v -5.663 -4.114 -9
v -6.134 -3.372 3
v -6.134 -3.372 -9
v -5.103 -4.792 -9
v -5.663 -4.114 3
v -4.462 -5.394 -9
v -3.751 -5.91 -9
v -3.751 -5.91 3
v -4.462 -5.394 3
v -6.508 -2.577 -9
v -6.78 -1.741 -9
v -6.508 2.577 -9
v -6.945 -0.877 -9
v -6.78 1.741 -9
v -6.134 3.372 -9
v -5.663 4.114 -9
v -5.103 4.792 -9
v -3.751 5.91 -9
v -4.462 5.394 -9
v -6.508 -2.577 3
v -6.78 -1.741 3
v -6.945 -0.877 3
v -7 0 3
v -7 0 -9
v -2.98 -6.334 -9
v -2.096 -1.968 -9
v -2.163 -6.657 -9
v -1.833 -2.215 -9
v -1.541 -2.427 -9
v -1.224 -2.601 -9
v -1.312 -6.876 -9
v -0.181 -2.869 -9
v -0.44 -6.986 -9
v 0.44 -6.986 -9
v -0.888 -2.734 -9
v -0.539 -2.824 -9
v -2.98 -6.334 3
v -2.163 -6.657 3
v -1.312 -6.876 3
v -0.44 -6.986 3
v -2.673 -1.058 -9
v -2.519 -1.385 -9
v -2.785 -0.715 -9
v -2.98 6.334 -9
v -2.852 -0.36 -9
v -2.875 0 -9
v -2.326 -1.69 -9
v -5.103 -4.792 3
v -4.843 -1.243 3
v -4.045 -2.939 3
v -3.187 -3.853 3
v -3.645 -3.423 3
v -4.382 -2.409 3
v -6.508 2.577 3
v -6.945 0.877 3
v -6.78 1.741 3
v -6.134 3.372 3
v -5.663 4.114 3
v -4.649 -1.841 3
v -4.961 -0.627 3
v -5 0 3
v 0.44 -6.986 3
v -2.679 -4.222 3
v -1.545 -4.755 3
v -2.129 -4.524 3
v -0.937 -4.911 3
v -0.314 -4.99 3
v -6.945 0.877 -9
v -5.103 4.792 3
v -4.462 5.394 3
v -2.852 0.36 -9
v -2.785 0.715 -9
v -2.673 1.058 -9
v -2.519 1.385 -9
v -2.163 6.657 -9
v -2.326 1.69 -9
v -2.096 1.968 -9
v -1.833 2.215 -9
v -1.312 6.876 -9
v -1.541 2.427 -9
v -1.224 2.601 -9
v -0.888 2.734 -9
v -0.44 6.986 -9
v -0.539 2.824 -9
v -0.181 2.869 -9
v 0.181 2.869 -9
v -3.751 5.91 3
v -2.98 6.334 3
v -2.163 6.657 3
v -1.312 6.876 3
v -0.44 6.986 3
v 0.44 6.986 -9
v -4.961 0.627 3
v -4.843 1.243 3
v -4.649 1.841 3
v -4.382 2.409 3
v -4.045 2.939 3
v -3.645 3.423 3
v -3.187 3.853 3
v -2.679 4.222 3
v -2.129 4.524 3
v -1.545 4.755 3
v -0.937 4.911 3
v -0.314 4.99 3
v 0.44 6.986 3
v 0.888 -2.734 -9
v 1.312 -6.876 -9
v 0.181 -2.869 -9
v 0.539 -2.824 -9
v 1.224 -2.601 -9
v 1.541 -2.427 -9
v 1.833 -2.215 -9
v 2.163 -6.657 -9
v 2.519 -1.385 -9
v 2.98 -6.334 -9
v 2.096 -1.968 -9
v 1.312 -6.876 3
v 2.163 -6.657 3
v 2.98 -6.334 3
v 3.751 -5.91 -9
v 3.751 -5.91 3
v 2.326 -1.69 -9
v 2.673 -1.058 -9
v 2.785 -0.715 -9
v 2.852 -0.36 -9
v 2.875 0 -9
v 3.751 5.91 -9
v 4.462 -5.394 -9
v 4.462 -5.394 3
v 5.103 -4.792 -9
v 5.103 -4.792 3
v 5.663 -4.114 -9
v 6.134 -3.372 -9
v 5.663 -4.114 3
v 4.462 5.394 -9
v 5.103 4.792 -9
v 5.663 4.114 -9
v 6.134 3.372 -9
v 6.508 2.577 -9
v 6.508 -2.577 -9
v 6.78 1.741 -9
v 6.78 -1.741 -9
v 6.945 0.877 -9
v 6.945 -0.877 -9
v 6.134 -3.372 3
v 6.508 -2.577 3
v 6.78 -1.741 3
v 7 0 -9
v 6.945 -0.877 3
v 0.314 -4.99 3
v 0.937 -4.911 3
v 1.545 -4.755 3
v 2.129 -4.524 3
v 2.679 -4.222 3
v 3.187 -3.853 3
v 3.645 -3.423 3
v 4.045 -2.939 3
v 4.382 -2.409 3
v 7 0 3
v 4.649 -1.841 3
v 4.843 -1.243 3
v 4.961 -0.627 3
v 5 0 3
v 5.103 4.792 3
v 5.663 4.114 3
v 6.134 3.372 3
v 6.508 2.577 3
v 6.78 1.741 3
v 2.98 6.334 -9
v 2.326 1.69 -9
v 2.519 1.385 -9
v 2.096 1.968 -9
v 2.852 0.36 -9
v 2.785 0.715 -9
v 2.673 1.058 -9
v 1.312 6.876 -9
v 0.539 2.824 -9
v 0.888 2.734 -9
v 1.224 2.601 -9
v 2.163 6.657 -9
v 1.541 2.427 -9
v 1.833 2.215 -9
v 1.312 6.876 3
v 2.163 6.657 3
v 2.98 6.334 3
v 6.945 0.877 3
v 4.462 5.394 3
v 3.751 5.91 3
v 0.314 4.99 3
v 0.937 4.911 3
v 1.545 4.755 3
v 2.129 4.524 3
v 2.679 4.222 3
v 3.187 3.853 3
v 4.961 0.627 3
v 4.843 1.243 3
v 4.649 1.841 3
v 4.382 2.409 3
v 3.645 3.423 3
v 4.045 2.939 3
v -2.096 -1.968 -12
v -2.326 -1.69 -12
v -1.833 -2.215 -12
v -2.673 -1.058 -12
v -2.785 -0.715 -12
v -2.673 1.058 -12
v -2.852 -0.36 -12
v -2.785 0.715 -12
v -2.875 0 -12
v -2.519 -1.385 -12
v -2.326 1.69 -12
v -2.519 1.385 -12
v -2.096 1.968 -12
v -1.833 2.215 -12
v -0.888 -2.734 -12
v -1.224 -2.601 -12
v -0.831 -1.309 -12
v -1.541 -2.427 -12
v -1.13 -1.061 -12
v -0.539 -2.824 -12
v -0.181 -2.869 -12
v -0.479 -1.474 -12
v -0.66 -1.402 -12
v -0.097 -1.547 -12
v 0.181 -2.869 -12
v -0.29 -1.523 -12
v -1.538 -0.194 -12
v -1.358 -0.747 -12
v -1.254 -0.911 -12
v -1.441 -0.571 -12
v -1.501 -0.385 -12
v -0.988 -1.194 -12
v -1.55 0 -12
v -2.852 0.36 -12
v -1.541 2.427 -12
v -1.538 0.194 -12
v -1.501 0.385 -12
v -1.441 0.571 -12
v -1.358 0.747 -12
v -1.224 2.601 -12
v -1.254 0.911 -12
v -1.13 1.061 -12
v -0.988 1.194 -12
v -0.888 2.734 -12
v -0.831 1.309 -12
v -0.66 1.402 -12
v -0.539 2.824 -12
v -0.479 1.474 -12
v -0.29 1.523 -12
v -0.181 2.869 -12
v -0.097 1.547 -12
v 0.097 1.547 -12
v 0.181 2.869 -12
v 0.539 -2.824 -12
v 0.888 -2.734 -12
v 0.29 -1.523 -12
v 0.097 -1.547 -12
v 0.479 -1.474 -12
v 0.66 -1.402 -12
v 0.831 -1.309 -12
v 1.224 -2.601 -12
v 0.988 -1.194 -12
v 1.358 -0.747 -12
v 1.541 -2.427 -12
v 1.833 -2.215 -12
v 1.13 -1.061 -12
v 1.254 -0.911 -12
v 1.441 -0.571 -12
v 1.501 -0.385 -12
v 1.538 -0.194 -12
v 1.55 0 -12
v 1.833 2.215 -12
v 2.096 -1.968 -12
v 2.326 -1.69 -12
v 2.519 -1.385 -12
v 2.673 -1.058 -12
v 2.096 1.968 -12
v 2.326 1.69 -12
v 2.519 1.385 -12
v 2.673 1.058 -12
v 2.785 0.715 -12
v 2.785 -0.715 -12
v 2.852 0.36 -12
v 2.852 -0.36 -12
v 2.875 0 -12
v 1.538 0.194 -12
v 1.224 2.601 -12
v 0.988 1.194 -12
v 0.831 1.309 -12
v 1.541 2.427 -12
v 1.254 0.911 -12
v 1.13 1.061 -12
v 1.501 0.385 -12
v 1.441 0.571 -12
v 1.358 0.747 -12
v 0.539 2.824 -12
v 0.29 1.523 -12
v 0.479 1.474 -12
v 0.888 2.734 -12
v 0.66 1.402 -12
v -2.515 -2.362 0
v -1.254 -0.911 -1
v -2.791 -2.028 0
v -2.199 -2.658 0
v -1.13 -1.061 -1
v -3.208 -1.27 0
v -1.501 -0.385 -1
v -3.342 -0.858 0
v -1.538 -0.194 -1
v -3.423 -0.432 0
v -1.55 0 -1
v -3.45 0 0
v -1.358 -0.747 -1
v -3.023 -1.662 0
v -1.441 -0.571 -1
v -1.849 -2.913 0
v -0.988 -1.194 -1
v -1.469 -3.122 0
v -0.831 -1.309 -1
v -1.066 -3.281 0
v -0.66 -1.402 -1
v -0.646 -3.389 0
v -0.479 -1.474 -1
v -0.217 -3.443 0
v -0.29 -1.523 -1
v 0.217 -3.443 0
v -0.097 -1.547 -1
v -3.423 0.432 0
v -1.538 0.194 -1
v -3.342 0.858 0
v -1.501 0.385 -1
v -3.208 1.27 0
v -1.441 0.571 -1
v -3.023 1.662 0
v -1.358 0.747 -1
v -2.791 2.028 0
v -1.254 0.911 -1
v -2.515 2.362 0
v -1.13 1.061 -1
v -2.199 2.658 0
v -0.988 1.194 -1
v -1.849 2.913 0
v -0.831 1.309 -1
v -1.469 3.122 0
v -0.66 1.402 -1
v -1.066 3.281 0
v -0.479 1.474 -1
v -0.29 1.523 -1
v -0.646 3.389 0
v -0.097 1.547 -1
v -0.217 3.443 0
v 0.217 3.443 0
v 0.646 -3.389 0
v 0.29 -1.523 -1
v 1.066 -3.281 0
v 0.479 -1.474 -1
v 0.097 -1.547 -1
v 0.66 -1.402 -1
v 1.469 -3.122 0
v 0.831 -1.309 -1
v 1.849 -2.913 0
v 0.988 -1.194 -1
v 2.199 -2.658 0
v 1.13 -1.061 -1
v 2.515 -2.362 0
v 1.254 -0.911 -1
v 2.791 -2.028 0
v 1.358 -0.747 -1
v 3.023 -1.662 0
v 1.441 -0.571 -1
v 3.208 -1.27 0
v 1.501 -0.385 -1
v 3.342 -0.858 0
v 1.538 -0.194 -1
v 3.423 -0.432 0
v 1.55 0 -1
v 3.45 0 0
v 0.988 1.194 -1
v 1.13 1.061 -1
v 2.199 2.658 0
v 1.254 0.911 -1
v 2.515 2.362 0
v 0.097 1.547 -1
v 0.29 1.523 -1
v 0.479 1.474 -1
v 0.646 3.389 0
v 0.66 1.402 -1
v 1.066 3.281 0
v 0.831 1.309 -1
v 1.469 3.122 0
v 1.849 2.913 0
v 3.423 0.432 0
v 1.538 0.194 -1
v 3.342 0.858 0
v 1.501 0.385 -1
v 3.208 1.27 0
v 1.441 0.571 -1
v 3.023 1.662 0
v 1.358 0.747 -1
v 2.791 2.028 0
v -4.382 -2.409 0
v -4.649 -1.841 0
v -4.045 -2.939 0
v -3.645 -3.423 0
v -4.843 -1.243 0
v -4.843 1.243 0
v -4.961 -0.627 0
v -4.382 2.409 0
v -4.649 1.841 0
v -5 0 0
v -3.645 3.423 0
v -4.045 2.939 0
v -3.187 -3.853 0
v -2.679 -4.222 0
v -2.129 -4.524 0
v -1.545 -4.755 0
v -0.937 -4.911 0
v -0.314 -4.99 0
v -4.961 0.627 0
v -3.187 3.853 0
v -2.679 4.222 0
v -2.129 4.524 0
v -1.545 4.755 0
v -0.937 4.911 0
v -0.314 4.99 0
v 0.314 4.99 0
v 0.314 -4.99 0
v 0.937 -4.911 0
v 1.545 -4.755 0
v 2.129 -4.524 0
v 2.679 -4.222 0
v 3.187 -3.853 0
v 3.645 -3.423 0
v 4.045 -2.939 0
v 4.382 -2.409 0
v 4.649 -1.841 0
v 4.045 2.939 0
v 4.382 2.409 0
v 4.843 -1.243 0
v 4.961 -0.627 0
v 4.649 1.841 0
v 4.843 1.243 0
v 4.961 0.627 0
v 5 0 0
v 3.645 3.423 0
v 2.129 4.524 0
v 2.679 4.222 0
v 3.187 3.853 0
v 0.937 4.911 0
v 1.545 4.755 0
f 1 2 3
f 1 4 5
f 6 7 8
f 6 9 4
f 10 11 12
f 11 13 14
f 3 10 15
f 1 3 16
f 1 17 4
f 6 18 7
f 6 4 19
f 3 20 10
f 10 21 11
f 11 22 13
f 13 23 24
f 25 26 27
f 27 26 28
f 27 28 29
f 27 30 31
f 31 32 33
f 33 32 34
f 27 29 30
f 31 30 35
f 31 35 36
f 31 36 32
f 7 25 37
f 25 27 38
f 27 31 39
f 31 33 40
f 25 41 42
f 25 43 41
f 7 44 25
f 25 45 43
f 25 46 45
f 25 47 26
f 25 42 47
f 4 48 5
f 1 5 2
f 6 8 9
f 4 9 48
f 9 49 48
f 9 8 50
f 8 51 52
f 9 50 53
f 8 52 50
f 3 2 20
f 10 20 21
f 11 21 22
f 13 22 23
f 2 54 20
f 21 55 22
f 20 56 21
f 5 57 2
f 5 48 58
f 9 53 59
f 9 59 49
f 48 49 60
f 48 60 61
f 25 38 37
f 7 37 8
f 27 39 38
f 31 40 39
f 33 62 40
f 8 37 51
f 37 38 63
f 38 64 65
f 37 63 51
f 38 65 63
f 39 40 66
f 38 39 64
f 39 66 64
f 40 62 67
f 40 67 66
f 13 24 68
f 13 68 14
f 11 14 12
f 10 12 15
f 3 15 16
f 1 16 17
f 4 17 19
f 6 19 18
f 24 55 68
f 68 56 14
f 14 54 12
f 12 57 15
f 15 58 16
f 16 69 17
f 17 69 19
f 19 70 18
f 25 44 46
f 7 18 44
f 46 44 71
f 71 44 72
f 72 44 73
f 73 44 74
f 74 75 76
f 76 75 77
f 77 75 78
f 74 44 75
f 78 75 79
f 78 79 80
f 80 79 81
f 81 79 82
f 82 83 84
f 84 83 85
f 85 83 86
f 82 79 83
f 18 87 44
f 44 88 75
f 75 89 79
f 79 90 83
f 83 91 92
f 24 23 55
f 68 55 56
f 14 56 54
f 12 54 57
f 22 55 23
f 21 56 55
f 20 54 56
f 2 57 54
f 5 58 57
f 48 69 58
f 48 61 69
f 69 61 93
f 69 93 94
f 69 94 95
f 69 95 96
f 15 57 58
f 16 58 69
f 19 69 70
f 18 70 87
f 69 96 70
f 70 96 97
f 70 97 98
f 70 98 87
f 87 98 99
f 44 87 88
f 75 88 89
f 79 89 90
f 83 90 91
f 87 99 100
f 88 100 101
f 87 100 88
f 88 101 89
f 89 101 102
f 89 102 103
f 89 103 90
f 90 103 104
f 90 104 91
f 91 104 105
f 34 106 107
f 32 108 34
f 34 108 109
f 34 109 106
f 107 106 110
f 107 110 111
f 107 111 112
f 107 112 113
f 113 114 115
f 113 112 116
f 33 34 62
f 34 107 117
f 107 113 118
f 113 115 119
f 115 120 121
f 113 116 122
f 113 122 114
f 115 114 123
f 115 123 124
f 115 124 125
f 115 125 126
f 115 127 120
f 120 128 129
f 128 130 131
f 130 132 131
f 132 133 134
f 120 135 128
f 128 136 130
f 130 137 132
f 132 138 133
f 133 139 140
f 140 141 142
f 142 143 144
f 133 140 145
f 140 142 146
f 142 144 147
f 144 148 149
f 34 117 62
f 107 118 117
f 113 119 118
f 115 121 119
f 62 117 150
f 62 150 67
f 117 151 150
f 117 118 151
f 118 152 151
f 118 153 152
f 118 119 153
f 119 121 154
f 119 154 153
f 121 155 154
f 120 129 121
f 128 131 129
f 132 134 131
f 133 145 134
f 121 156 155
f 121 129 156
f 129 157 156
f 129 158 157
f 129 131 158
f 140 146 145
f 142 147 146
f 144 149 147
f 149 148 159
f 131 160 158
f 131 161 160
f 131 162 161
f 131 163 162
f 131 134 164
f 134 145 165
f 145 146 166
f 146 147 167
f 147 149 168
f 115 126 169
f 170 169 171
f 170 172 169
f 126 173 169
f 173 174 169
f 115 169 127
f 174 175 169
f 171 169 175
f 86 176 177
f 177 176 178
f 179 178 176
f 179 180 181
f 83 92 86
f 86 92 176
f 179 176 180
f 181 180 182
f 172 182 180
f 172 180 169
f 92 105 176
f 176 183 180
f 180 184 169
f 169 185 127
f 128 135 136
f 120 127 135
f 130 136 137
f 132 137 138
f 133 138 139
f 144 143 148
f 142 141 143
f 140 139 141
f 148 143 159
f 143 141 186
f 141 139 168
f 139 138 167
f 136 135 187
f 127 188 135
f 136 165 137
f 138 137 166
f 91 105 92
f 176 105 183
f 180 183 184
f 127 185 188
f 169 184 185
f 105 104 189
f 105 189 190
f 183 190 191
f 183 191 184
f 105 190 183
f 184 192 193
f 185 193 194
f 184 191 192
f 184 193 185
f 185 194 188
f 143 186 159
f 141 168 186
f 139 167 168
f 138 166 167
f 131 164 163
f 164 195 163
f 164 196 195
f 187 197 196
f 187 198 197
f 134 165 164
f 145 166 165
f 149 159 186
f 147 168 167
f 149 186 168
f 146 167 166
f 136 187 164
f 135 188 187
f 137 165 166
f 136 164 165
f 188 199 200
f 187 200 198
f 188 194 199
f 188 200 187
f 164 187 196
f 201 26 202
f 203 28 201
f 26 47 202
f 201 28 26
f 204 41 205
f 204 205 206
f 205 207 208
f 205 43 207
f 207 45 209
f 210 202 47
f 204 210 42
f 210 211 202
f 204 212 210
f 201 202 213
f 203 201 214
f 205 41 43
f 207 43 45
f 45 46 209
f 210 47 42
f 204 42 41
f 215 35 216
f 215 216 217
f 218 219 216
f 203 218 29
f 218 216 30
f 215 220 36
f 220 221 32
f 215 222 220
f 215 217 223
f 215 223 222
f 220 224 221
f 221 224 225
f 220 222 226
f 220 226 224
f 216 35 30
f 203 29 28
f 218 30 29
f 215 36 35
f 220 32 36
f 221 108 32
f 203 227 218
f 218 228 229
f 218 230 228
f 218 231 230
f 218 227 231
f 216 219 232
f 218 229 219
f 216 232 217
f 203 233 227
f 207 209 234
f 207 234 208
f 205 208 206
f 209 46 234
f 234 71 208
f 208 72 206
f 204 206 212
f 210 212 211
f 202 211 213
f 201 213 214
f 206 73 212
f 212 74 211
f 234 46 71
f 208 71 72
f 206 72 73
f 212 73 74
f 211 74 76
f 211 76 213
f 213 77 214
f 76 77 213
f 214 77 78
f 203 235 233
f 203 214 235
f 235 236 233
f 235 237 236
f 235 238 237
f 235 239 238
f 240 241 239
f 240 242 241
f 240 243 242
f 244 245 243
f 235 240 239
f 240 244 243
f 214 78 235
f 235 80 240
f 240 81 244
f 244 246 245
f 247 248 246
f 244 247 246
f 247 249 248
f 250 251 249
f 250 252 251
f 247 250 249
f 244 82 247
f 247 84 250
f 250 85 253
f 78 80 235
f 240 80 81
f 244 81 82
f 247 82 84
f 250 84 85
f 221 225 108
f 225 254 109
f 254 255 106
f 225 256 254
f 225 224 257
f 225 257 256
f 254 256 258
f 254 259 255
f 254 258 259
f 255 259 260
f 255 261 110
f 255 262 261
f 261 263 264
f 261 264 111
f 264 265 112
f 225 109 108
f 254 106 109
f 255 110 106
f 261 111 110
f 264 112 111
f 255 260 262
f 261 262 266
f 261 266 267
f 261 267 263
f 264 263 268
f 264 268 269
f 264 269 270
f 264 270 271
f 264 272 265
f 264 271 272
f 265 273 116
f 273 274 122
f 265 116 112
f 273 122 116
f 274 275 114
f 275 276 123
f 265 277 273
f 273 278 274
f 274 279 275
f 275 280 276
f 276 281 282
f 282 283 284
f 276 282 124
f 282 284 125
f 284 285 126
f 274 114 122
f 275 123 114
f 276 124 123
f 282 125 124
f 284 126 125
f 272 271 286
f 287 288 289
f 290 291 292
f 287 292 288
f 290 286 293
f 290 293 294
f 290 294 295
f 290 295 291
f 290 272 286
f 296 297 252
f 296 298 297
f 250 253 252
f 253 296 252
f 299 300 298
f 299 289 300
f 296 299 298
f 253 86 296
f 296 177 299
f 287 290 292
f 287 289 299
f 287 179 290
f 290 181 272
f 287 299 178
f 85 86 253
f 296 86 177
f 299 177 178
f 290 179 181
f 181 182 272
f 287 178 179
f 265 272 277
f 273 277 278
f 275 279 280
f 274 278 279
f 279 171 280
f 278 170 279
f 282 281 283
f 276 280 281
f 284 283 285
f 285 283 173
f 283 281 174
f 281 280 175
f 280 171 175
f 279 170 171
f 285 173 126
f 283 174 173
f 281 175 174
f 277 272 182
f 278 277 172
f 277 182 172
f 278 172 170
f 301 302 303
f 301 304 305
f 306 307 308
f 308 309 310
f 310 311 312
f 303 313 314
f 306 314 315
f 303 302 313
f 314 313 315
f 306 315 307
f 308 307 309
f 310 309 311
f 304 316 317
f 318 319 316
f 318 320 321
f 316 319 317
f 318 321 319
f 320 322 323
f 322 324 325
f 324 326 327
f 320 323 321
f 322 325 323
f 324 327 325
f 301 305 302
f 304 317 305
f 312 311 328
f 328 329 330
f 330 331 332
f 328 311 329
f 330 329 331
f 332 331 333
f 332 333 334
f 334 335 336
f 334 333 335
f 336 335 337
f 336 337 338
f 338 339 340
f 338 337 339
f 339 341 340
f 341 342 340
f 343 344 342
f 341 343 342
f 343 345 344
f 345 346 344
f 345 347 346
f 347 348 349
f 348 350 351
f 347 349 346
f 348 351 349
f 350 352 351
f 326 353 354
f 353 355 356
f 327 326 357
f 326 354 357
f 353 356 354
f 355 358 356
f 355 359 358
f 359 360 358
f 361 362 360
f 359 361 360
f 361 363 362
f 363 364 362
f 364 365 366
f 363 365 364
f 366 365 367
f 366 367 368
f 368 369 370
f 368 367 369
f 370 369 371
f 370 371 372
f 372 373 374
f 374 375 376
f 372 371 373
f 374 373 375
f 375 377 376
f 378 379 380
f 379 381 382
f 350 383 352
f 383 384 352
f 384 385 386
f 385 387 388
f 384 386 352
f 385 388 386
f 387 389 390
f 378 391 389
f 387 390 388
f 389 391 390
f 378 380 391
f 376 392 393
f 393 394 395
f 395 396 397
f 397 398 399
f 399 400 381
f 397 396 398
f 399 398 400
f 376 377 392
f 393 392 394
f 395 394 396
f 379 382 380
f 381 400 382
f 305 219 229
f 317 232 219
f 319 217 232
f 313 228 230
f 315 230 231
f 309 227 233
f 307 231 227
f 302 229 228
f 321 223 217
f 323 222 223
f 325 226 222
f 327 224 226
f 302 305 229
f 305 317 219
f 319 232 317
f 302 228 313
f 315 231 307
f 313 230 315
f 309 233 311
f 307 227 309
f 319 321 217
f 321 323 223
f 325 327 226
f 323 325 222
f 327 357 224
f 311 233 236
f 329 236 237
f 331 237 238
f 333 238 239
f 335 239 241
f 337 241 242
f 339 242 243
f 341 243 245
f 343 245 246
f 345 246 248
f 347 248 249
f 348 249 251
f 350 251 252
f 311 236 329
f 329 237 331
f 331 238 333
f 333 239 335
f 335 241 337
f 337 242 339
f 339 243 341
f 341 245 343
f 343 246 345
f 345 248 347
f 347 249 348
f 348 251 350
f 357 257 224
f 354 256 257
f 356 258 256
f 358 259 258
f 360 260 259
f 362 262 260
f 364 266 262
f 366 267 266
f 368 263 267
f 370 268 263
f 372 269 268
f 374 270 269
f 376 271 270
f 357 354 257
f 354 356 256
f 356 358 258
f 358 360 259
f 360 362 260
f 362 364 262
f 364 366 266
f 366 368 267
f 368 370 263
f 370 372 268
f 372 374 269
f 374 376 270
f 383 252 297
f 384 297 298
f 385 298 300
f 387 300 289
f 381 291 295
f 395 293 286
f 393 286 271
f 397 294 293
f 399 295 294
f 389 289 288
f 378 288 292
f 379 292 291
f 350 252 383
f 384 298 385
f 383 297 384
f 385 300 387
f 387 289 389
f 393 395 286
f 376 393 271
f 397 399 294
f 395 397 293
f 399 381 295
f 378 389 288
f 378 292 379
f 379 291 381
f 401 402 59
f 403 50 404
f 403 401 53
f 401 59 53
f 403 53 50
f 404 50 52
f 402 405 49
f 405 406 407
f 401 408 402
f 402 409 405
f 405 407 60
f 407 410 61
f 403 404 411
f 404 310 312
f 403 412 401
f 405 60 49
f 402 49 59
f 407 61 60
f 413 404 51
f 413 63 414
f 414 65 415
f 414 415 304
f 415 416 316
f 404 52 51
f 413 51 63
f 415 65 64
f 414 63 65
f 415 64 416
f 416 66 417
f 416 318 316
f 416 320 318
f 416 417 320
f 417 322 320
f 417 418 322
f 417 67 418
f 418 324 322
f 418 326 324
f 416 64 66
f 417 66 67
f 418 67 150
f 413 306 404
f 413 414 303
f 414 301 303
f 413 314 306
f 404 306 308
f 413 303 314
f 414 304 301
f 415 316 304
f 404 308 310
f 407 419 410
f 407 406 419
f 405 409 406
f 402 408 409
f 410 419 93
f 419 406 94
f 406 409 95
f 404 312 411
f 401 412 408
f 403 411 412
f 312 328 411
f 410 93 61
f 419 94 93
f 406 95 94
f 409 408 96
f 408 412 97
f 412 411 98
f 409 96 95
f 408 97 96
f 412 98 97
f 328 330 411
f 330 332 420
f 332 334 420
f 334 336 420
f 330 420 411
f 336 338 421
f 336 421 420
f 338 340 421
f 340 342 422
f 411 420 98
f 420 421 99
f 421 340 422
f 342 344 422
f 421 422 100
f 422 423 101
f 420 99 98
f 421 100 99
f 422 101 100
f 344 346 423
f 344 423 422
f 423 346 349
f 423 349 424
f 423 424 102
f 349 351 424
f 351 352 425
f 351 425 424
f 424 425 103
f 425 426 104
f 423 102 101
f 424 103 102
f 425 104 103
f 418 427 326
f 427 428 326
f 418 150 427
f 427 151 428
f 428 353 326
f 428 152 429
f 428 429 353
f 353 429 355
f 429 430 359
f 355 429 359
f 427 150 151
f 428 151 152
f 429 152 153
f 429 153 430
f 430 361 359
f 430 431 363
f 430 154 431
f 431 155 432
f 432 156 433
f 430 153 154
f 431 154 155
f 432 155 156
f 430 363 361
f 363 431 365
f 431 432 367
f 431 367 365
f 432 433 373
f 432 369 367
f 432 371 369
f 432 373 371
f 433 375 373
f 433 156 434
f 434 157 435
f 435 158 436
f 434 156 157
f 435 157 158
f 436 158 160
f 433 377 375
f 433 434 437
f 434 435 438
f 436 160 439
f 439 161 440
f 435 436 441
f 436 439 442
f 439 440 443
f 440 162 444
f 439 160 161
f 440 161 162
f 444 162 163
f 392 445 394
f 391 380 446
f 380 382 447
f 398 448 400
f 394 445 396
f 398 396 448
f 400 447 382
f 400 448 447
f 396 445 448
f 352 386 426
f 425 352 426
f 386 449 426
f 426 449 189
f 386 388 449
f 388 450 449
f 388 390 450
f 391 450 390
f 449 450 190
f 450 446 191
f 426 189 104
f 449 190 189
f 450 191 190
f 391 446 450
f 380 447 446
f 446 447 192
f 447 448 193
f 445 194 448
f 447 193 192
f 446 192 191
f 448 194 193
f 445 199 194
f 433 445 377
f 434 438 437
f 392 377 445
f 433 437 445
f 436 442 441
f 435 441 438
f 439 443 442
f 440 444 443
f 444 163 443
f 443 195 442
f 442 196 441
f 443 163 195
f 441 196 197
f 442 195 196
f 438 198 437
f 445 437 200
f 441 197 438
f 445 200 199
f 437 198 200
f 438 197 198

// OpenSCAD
$fn = 50;


difference() {
	union() {
		translate(v = [0, 0, -9.0000000000]) {
			cylinder(h = 12, r = 7.0000000000);
		}
		#translate(v = [0, 0, -12.0000000000]) {
			cylinder(h = 12, r = 2.8750000000);
		}
	}
	union() {
		translate(v = [0, 0, 0]) {
			rotate(a = [0, 0, 0]) {
				difference() {
					union() {
						translate(v = [0, 0, -12.0000000000]) {
							cylinder(h = 12, r = 1.2500000000);
						}
						translate(v = [0, 0, -1.0000000000]) {
							cylinder(h = 1.0000000000, r1 = 1.5500000000, r2 = 3.4500000000);
						}
						translate(v = [0, 0, -12.0000000000]) {
							cylinder(h = 12, r = 1.5500000000);
						}
						translate(v = [0, 0, -12.0000000000]) {
							cylinder(h = 12, r = 1.2500000000);
						}
					}
					union();
				}
			}
		}
		#cylinder(h = 3, r = 5.0000000000);
	}
}
